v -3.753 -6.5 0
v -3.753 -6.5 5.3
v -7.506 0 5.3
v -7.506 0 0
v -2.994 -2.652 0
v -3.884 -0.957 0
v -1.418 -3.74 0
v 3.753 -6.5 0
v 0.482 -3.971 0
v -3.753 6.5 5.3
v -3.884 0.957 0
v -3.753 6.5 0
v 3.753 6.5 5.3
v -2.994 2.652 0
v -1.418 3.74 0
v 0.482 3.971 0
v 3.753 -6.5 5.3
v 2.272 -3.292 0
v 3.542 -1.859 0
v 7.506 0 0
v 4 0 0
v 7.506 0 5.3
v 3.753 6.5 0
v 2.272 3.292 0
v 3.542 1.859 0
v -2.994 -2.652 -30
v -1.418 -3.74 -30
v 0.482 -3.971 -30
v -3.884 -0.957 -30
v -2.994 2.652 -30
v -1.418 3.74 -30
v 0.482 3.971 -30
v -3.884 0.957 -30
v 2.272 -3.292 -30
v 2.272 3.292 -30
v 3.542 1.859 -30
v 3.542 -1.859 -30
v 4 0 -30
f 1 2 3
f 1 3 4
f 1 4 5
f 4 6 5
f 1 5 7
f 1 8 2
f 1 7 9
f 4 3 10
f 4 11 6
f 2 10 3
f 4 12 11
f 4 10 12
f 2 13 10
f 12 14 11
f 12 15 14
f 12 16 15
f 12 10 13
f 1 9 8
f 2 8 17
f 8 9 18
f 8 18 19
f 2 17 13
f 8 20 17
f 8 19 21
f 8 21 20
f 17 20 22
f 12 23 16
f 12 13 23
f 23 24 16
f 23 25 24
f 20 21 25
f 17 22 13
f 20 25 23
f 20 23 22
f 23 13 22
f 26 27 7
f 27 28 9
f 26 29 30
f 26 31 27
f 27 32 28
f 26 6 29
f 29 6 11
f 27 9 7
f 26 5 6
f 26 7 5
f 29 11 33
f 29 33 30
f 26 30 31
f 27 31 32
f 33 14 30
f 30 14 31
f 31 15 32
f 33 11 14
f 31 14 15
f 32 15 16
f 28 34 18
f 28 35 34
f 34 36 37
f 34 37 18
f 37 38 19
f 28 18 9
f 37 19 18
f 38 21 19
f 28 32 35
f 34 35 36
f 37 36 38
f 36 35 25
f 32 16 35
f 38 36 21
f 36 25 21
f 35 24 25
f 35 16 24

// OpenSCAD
// M8 Hex Bolt (shank only, no threads)

// Bolt dimensions
head_across_flats = 13; // Across-flats of the hex head
head_height = 5.3;     // Height of the hex head
shank_diameter = 8;    // Diameter of the shank
shank_length = 30;     // Length of the shank

// Calculate the radius to the vertices of the hexagon from the center
// The distance from the center to the midpoint of a side (apothem) is
// half the across-flats distance. The distance to a vertex is
// apothem / cos(30 degrees).
hex_radius_to_vertex = (head_across_flats / 2) / cos(30);

// Create the hex head using polygon and linear_extrude
module hex_head() {
    // The polygon is defined in the XY plane, and linear_extrude extrudes it along Z.
    // By default, the extrusion starts from z=0 and goes up.
    linear_extrude(height = head_height) {
        polygon(points = [
            [hex_radius_to_vertex * cos(0), hex_radius_to_vertex * sin(0)],
            [hex_radius_to_vertex * cos(60), hex_radius_to_vertex * sin(60)],
            [hex_radius_to_vertex * cos(120), hex_radius_to_vertex * sin(120)],
            [hex_radius_to_vertex * cos(180), hex_radius_to_vertex * sin(180)],
            [hex_radius_to_vertex * cos(240), hex_radius_to_vertex * sin(240)],
            [hex_radius_to_vertex * cos(300), hex_radius_to_vertex * sin(300)]
        ]);
    }
}

// Create the shank
module shank() {
    // The cylinder is created with its base at z=0 and extends upwards.
    // To make it extend in the -Z direction from z=0, we rotate it 180 degrees around the X axis.
    // This makes the "top" (originally at h) be at z=0, and the "bottom" (originally at z=0) be at z=-h.
    translate([0, 0, 0]) { // Align the top of the rotated cylinder with z=0
        rotate([180, 0, 0]) {
            cylinder(h=shank_length, r=shank_diameter/2, center=false);
        }
    }
}

// Assemble the bolt
module m8_bolt() {
    // Place the hex head. Its bottom face is at z=0 as per the prompt.
    hex_head();

    // Place the shank below the head.
    // The shank module is designed to extend in the -Z direction from z=0.
    shank();
}

// Render the bolt
m8_bolt();
